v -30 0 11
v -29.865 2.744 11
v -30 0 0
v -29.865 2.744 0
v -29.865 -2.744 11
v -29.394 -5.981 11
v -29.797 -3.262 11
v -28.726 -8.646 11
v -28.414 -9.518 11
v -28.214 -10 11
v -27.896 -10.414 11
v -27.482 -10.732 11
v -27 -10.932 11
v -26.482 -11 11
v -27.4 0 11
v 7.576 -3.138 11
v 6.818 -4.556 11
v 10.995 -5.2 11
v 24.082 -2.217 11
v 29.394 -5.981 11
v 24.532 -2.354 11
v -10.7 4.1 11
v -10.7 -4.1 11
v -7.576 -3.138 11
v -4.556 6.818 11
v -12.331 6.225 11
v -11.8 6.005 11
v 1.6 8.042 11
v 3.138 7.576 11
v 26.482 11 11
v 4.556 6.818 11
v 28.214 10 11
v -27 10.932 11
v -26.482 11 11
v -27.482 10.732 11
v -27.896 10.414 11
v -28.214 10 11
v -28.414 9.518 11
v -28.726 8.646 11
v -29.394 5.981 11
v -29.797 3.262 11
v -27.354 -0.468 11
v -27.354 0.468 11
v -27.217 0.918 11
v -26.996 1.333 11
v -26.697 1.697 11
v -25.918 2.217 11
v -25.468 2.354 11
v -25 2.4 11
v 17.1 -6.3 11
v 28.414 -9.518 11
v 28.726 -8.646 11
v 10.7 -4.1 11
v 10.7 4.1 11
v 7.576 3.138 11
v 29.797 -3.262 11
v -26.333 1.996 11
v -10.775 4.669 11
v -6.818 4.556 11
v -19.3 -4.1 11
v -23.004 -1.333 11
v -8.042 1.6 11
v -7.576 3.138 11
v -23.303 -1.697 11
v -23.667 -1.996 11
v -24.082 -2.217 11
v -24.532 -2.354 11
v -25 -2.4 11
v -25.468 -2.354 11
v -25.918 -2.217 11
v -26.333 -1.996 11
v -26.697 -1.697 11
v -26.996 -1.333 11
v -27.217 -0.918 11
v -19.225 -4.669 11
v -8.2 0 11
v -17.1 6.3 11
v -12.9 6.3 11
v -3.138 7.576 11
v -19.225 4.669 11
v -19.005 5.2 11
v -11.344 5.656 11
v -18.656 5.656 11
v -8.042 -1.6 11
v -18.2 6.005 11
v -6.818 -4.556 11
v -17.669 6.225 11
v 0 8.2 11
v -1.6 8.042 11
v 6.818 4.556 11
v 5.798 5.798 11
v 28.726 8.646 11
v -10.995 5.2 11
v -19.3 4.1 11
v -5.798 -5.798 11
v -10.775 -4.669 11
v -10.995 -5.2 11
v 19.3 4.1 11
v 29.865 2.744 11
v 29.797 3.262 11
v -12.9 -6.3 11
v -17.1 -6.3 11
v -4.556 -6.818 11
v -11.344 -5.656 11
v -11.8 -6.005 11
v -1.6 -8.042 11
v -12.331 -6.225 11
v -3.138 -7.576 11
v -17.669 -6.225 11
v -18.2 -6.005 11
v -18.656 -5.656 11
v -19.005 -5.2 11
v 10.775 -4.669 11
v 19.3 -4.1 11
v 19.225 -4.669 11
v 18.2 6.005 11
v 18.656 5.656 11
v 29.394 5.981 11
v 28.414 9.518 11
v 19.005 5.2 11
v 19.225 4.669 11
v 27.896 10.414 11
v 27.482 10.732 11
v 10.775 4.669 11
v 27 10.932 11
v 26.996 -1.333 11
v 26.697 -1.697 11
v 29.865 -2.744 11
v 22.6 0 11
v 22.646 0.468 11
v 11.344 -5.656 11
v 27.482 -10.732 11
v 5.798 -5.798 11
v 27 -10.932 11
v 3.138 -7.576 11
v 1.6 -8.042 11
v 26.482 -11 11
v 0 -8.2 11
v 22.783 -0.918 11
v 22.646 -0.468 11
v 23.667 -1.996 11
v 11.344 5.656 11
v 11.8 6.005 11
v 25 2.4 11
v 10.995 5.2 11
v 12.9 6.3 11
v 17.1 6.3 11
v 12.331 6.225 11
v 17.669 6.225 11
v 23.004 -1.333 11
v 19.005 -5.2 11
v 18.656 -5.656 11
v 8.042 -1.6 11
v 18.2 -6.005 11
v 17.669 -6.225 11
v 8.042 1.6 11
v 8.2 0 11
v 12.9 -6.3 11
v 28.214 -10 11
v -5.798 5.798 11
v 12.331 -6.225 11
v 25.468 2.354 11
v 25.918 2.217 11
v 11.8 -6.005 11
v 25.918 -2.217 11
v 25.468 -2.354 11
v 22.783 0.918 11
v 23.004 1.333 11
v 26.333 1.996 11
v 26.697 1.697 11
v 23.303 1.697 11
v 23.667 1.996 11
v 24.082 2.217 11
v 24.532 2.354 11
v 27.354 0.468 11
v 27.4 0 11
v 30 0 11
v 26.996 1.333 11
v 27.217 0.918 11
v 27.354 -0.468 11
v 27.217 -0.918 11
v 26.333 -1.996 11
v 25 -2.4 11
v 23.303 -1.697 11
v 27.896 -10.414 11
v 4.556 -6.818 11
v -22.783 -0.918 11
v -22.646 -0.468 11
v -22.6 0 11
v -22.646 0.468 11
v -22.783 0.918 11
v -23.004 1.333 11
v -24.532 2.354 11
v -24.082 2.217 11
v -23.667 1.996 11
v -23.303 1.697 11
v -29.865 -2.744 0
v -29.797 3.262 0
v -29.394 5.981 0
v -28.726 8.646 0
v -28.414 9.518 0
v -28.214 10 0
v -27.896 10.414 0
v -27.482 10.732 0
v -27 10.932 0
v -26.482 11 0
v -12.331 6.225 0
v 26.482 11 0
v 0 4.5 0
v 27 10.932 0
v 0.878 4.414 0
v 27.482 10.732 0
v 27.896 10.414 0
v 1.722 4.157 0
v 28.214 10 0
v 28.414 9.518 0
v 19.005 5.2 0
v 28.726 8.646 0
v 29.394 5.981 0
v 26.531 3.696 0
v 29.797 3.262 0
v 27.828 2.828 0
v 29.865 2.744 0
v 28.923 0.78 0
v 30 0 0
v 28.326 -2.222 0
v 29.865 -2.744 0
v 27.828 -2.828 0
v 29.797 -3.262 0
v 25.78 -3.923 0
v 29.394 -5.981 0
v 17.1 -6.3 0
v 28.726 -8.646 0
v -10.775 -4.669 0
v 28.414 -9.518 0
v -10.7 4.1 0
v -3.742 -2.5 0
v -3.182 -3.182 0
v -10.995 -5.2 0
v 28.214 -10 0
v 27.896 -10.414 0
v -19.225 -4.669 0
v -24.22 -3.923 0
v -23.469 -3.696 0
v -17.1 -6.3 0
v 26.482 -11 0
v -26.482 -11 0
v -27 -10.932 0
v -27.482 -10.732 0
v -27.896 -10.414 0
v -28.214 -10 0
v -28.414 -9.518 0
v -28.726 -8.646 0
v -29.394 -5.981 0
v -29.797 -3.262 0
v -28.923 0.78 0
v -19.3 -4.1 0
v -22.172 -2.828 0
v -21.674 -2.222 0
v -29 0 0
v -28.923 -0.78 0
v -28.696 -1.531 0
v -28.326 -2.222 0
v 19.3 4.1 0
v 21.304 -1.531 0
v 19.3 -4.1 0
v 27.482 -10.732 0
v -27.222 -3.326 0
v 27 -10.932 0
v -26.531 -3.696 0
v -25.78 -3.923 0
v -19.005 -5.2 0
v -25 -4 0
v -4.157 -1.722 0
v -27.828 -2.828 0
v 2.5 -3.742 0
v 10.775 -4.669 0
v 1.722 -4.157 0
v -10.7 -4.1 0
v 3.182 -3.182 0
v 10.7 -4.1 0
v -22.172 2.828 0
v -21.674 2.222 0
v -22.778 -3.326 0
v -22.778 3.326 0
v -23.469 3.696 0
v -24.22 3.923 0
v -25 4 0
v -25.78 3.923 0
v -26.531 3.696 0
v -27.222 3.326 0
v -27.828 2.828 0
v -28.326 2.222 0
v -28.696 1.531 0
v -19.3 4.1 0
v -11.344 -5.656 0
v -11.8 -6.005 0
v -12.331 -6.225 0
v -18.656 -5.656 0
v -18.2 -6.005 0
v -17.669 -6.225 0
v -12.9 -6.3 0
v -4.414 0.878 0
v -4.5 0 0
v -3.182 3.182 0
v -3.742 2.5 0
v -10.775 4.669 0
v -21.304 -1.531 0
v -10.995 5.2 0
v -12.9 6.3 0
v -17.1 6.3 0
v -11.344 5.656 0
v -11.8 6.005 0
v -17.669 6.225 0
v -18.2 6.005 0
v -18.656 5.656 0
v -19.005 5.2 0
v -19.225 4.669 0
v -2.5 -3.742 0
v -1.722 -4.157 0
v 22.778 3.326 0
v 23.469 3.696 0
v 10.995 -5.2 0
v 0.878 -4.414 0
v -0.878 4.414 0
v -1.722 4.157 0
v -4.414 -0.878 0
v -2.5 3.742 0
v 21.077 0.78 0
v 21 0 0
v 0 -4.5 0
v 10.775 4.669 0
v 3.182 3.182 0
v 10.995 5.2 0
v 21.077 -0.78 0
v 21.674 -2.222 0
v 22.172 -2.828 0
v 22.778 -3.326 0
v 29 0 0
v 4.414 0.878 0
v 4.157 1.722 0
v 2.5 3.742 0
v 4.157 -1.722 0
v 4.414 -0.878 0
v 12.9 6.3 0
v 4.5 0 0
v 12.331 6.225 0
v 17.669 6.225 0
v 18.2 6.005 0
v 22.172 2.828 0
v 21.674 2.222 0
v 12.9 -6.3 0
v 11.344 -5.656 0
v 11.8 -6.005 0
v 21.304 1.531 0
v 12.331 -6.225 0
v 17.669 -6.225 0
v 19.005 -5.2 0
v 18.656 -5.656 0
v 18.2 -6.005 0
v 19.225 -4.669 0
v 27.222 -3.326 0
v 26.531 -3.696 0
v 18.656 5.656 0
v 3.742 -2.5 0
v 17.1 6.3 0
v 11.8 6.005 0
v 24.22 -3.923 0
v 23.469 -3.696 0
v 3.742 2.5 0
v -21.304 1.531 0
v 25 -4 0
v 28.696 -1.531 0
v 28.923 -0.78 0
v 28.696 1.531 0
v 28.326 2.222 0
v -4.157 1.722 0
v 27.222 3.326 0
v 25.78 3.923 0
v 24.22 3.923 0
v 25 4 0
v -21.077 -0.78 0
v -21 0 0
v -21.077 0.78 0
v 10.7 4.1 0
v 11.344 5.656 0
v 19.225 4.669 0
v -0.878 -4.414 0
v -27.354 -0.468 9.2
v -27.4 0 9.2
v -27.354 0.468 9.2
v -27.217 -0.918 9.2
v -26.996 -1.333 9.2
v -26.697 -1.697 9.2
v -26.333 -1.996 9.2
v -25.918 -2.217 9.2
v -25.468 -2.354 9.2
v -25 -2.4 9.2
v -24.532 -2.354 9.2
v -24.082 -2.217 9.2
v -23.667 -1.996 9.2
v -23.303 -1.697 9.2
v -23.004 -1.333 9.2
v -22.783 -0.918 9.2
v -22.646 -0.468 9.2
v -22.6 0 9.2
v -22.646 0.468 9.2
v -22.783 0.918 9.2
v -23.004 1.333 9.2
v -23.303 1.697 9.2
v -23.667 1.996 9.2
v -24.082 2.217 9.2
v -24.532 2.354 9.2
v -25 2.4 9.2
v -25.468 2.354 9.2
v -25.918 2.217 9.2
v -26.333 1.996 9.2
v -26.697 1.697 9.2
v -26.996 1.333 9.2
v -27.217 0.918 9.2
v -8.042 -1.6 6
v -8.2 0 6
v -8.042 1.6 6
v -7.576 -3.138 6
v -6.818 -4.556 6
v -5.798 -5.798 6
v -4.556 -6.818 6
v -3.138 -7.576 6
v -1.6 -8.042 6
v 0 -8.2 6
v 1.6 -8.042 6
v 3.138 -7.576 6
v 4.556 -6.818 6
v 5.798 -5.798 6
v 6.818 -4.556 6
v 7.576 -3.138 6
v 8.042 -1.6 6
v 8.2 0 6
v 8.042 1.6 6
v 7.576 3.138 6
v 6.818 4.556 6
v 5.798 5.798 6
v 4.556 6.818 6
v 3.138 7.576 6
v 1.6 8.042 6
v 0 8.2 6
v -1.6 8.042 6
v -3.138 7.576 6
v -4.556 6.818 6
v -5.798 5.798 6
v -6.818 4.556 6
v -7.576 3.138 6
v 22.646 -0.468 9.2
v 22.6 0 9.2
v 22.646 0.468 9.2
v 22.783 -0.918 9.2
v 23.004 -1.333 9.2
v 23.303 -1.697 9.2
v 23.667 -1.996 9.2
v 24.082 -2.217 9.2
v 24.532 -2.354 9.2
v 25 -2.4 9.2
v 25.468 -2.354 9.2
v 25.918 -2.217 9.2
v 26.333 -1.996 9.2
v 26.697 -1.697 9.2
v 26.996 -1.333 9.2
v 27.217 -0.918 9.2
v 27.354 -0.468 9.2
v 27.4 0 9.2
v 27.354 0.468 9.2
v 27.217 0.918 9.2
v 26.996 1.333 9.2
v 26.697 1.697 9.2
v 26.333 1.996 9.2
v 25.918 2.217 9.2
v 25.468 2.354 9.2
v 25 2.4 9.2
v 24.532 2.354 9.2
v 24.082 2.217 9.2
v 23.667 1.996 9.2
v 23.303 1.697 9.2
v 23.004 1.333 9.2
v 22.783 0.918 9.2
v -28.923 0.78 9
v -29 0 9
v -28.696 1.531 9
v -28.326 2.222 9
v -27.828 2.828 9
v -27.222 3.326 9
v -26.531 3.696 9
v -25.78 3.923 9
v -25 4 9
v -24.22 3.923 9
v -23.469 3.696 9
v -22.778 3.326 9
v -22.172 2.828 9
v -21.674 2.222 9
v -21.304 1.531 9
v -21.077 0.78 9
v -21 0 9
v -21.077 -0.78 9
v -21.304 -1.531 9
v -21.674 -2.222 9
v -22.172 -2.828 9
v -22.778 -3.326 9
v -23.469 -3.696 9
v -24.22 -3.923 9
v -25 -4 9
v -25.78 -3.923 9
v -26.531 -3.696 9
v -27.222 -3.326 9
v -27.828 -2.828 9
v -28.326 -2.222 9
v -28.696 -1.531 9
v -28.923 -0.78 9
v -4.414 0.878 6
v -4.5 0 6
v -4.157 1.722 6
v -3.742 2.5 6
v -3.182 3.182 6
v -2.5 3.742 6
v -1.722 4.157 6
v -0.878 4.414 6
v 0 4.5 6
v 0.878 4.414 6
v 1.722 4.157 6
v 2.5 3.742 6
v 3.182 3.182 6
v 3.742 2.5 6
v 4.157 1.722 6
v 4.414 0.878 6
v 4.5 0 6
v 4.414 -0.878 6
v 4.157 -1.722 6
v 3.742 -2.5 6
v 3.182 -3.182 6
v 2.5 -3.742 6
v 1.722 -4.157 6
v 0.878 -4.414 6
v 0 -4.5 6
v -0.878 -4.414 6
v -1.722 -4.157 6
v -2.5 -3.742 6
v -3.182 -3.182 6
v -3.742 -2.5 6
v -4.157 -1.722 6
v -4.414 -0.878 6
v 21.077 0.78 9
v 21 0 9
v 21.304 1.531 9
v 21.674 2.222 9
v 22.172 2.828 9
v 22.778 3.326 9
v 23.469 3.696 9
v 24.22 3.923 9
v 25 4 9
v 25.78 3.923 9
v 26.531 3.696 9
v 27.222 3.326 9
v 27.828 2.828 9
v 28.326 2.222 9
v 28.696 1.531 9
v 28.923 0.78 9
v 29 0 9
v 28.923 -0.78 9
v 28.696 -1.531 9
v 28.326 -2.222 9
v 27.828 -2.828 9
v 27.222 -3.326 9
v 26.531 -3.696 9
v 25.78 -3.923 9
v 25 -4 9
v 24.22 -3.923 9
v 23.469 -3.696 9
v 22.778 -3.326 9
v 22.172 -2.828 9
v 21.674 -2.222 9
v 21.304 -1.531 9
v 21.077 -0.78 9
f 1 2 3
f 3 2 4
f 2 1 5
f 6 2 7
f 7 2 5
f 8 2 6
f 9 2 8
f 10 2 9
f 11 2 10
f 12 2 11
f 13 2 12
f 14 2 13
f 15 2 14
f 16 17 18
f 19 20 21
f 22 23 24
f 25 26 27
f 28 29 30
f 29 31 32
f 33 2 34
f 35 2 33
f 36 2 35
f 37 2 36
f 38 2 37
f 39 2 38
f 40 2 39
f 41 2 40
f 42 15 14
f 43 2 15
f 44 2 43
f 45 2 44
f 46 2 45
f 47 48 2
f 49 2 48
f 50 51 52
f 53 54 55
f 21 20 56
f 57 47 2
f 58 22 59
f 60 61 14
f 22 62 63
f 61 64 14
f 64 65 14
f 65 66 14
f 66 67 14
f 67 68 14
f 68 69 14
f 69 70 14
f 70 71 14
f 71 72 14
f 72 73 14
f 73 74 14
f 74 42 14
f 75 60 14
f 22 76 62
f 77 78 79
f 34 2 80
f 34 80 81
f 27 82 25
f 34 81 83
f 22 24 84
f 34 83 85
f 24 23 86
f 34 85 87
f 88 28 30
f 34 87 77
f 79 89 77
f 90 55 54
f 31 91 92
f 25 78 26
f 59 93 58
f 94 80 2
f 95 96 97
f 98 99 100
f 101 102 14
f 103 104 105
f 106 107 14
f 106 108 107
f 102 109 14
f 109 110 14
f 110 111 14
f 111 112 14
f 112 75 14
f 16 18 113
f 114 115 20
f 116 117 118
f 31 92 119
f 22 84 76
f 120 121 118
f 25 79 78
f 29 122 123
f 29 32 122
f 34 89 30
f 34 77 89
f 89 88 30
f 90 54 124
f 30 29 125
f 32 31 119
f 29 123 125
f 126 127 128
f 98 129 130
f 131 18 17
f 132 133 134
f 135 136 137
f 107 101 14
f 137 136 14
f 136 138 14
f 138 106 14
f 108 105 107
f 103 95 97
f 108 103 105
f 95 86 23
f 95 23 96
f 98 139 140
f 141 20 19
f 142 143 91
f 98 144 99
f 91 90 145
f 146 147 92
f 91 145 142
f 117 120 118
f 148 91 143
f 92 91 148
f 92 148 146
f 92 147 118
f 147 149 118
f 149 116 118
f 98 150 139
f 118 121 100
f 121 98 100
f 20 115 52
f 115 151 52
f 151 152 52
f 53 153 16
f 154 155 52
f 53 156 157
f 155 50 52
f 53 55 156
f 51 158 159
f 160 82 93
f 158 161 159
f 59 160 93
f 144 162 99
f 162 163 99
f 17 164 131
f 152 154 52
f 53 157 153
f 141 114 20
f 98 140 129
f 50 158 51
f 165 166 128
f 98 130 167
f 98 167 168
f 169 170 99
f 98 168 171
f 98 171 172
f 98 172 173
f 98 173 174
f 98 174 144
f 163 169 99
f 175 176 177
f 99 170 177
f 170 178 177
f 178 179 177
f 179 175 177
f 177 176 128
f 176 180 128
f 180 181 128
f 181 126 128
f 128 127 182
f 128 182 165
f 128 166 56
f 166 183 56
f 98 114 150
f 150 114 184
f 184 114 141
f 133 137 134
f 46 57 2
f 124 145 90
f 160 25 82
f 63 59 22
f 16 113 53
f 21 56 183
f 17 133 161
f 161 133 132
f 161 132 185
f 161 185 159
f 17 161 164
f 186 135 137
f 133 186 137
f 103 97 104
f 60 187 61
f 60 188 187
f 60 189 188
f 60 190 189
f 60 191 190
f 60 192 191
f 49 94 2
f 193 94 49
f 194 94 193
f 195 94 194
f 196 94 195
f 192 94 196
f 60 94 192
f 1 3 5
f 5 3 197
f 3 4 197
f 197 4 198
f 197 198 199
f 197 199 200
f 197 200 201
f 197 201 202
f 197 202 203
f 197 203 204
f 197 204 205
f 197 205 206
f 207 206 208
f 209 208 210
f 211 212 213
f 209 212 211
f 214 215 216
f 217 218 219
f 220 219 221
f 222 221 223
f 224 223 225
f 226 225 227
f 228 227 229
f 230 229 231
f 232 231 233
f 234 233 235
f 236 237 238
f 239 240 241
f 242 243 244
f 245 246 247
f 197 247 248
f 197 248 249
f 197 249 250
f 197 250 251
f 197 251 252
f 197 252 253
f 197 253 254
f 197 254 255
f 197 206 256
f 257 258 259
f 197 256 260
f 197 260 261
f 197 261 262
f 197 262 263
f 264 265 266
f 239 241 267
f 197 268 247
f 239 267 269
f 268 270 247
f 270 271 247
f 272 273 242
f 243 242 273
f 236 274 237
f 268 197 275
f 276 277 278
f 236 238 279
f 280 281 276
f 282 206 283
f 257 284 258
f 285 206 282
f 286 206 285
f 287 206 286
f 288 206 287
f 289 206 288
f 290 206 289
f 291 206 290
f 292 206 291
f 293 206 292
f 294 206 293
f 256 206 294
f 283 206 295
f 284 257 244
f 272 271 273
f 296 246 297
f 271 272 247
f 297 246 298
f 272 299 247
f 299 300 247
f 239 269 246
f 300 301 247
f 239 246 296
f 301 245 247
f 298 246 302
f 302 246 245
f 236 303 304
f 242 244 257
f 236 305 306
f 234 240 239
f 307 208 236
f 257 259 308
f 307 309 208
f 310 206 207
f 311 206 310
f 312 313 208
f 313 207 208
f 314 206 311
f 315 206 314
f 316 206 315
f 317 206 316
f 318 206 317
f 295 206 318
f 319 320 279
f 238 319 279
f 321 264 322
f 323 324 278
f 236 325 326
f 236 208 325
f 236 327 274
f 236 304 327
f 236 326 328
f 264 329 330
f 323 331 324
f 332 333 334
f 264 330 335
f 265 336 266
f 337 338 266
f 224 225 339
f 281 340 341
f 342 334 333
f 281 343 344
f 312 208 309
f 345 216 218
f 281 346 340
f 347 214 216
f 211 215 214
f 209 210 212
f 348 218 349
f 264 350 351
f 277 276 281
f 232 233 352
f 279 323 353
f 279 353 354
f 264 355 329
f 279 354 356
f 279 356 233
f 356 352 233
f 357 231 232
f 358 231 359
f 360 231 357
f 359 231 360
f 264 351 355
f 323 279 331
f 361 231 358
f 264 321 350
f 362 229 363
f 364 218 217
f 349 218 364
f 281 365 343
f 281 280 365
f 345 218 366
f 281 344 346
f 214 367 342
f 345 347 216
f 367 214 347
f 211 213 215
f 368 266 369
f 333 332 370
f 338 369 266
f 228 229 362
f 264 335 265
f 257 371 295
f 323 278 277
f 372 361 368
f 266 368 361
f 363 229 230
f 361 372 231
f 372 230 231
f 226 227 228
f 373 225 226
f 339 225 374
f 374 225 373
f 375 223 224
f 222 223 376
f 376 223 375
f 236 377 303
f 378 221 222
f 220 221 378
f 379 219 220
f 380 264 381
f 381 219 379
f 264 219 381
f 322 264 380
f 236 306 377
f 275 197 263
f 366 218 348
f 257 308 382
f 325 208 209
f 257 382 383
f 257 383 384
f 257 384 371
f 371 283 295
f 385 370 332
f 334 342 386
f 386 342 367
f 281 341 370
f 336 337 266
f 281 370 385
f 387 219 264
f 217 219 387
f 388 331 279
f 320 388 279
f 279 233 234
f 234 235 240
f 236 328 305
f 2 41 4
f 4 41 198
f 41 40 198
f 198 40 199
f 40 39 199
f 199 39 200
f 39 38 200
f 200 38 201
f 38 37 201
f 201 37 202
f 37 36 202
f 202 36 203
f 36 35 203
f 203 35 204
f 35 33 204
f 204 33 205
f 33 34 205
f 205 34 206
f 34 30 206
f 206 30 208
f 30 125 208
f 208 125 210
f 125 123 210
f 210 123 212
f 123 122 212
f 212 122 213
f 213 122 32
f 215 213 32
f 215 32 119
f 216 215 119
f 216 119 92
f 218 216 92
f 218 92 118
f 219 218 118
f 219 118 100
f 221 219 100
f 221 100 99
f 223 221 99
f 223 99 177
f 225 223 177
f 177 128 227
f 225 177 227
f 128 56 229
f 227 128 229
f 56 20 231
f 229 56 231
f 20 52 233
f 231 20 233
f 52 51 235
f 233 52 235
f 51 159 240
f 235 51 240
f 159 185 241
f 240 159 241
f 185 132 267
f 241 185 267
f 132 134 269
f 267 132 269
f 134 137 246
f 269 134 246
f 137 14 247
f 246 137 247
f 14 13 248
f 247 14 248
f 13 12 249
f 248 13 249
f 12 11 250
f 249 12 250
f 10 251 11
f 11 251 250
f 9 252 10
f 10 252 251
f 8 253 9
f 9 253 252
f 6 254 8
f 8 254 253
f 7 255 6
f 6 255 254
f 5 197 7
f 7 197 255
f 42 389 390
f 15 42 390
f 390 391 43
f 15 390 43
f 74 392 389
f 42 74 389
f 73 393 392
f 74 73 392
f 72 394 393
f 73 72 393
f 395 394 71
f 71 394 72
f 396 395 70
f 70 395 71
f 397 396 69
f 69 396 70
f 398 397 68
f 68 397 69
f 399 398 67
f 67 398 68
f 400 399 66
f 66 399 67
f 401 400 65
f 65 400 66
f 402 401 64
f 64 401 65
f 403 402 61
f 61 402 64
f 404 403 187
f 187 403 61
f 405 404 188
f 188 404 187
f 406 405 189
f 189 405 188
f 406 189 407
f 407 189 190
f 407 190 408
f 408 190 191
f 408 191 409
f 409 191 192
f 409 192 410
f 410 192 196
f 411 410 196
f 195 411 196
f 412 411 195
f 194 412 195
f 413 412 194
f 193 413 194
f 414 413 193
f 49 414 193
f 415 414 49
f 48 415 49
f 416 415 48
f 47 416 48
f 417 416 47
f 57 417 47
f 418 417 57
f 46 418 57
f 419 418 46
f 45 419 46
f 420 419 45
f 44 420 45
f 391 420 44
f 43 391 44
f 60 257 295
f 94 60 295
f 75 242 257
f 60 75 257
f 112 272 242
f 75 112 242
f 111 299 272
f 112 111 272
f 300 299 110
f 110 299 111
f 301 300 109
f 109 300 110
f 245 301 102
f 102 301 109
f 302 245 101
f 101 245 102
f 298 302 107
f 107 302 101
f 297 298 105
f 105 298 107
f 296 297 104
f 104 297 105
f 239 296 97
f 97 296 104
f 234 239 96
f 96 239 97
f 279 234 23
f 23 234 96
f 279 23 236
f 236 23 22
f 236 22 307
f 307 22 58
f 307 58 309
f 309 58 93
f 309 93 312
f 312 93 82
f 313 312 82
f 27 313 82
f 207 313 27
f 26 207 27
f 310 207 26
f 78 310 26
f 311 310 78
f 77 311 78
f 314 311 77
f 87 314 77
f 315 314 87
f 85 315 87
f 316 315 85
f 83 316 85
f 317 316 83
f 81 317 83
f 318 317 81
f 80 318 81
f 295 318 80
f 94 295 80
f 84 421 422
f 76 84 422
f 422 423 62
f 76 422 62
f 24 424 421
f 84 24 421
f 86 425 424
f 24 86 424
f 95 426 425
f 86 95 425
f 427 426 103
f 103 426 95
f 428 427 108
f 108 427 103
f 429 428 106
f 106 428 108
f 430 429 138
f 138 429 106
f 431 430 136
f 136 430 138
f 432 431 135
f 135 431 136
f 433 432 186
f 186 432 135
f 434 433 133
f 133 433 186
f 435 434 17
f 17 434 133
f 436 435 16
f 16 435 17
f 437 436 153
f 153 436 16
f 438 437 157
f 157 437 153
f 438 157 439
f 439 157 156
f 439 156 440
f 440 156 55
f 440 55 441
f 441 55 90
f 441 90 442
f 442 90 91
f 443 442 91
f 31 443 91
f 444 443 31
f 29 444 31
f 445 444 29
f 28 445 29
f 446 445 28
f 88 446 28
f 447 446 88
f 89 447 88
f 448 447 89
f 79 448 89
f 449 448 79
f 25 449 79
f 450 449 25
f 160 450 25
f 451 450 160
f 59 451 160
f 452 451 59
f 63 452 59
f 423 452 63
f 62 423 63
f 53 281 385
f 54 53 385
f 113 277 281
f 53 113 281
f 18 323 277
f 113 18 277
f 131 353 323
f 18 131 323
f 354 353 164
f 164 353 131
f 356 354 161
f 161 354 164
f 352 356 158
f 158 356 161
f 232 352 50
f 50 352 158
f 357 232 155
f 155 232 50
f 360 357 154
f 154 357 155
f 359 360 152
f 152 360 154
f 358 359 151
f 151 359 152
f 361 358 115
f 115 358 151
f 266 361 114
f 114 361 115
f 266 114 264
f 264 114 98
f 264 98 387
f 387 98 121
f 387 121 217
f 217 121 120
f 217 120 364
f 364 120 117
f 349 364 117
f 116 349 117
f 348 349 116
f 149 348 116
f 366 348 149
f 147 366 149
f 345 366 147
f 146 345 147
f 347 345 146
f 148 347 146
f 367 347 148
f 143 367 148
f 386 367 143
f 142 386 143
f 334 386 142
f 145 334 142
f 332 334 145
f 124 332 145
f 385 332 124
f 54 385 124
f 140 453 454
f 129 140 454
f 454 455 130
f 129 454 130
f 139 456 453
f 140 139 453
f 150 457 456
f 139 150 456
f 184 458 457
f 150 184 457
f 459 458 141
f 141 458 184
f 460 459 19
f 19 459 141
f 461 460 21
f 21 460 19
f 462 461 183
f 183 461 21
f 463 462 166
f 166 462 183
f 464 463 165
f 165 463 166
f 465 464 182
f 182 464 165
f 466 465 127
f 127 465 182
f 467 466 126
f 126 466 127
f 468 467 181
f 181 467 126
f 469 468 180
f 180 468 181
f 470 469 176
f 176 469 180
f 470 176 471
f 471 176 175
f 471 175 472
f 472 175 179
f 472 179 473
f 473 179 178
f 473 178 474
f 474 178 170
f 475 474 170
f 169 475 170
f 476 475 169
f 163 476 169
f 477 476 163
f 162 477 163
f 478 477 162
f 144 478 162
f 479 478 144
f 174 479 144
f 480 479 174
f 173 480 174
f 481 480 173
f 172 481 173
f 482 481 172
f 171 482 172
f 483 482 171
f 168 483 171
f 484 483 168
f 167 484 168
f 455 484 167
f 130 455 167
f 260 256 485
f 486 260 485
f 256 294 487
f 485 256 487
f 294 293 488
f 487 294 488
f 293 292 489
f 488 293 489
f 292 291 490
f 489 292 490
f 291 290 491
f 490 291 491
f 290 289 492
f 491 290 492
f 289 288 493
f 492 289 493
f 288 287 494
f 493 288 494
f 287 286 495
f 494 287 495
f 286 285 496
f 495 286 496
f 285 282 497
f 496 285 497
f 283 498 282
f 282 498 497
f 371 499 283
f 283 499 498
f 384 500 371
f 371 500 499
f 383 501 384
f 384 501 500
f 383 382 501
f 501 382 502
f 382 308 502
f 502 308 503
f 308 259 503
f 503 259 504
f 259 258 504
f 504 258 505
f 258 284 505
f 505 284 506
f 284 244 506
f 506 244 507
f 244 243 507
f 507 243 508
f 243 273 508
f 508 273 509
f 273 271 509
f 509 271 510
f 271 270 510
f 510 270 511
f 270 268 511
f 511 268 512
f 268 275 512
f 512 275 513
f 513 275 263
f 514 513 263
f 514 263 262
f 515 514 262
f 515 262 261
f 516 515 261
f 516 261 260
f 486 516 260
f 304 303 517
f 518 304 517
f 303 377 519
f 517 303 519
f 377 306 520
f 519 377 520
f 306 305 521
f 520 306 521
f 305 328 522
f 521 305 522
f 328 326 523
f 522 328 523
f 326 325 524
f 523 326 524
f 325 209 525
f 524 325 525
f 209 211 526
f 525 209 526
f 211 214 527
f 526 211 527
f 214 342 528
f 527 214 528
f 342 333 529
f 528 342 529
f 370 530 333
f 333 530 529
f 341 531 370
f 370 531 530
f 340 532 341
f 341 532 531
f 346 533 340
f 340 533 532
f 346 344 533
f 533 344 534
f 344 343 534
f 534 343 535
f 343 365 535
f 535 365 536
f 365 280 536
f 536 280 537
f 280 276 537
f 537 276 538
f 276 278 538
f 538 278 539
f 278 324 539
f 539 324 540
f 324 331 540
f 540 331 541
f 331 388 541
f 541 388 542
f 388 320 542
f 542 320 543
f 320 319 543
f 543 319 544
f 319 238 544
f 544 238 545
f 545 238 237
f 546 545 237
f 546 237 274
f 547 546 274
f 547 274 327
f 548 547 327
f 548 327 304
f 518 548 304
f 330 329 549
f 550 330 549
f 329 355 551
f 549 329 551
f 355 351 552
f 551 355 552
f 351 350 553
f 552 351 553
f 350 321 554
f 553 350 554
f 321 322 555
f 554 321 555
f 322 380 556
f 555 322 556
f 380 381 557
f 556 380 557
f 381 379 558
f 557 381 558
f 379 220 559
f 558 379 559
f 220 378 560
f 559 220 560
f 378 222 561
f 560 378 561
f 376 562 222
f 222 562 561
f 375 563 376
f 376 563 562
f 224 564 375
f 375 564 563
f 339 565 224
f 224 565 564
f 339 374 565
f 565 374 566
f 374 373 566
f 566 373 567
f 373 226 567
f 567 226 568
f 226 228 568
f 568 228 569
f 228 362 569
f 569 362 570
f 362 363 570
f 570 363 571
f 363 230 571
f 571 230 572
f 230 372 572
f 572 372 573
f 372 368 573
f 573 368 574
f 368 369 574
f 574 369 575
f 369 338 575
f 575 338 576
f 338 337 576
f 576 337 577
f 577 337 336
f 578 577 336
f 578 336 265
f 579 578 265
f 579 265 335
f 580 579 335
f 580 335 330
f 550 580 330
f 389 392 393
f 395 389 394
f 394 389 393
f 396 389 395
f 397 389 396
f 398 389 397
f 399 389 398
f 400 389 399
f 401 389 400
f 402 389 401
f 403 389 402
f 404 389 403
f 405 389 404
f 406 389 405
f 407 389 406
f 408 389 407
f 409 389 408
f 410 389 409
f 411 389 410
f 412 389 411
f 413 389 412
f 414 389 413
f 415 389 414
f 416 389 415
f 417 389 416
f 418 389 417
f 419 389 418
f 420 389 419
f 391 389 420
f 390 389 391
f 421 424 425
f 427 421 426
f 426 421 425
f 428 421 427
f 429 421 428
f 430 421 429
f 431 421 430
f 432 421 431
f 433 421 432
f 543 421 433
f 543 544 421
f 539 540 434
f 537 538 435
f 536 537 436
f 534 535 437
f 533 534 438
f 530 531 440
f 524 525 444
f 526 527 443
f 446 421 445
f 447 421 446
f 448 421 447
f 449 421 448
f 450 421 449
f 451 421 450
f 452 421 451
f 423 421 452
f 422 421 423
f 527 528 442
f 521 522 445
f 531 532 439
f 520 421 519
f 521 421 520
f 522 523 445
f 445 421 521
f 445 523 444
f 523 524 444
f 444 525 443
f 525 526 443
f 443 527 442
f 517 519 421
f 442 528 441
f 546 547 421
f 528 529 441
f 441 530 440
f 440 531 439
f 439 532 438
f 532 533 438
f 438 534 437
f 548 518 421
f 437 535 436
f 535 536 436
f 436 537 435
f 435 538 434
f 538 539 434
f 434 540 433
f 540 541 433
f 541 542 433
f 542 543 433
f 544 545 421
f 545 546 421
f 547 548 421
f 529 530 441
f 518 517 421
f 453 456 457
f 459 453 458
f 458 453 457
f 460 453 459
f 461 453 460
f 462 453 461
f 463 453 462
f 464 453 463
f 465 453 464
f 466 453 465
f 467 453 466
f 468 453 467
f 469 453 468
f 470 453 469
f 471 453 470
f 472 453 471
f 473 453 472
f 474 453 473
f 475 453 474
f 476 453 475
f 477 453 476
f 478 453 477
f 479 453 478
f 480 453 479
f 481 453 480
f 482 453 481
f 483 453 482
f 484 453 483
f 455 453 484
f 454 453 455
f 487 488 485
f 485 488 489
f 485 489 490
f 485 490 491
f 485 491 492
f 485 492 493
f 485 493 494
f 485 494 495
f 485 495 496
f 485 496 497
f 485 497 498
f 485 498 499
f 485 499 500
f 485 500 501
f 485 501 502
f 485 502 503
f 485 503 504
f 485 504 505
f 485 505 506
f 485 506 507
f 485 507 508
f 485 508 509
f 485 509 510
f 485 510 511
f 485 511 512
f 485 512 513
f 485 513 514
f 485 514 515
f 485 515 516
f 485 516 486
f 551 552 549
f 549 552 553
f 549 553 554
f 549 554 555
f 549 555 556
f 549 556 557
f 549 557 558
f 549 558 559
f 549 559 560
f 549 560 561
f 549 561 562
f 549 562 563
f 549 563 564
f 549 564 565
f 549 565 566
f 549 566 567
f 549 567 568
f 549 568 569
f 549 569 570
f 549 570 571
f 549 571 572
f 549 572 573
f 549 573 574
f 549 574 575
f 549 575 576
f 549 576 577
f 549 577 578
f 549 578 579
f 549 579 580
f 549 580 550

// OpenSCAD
module bowden_clamp() difference() {
	linear_extrude(height=11,convexity=30) difference() {
		// basic shape
		minkowski() {
			intersection() {
				square([60-2,22-4],center=true);
				circle(r=30-2,$fn=64);
			}
			// rounded corners
			circle(r=2,$fn=24);
		}
	}
	// M4 socket heads
	for(x=[-25,25]) translate([x,0,2])
		cylinder(r=4,h=12,$fn=32);

	// M4 Mounting holes
	for(x=[-25,25]) translate([x,0,-1])
		cylinder(r=2.4,h=2.8,$fn=32);

	// groove mount
	translate([0,0,-1]) cylinder(r=8.2,h=6,$fn=32);

	// M6 captive nut
//	cylinder(r=6.9,h=8,$fn=6); // LP

	// M6 pneumatic fitting
	cylinder(r=4.5,h=14,$fn=32); // LP

	// unnecessary vents
	for(x=[-15,15]) translate([x,0,-1]) minkowski() {
		cube([4.2,8.2,13],center=true);
		cylinder(r=2.2,h=13,$fn=24);
	}
}

module wood_mount() difference() {
	// basic shape
	minkowski() {
		intersection() {
			square([60-1.8,22-3.6],center=true);
			circle(r=30-1.8,$fn=64);
		}
		// rounded corners
		circle(r=2,$fn=24);
	}
	// M4 Mounting holes
	for(x=[-25,25]) translate([x,0])
		circle(r=2,$fn=32);

	// groove mount
	circle(r=5.9,$fn=32);
	translate([0,-11]) square([11.8,22], center=true);

	// unnecessary vents
	for(x=[-15,15]) translate([x,0]) minkowski() {
		square([4,8],center=true);
		circle(r=2,$fn=24);
	}

}

%translate([0,0,-5]) linear_extrude(height=5,convexity=30) wood_mount();
bowden_clamp();

!translate([0,0,11]) rotate([180,0,0]) bowden_clamp();
*!wood_mount();
